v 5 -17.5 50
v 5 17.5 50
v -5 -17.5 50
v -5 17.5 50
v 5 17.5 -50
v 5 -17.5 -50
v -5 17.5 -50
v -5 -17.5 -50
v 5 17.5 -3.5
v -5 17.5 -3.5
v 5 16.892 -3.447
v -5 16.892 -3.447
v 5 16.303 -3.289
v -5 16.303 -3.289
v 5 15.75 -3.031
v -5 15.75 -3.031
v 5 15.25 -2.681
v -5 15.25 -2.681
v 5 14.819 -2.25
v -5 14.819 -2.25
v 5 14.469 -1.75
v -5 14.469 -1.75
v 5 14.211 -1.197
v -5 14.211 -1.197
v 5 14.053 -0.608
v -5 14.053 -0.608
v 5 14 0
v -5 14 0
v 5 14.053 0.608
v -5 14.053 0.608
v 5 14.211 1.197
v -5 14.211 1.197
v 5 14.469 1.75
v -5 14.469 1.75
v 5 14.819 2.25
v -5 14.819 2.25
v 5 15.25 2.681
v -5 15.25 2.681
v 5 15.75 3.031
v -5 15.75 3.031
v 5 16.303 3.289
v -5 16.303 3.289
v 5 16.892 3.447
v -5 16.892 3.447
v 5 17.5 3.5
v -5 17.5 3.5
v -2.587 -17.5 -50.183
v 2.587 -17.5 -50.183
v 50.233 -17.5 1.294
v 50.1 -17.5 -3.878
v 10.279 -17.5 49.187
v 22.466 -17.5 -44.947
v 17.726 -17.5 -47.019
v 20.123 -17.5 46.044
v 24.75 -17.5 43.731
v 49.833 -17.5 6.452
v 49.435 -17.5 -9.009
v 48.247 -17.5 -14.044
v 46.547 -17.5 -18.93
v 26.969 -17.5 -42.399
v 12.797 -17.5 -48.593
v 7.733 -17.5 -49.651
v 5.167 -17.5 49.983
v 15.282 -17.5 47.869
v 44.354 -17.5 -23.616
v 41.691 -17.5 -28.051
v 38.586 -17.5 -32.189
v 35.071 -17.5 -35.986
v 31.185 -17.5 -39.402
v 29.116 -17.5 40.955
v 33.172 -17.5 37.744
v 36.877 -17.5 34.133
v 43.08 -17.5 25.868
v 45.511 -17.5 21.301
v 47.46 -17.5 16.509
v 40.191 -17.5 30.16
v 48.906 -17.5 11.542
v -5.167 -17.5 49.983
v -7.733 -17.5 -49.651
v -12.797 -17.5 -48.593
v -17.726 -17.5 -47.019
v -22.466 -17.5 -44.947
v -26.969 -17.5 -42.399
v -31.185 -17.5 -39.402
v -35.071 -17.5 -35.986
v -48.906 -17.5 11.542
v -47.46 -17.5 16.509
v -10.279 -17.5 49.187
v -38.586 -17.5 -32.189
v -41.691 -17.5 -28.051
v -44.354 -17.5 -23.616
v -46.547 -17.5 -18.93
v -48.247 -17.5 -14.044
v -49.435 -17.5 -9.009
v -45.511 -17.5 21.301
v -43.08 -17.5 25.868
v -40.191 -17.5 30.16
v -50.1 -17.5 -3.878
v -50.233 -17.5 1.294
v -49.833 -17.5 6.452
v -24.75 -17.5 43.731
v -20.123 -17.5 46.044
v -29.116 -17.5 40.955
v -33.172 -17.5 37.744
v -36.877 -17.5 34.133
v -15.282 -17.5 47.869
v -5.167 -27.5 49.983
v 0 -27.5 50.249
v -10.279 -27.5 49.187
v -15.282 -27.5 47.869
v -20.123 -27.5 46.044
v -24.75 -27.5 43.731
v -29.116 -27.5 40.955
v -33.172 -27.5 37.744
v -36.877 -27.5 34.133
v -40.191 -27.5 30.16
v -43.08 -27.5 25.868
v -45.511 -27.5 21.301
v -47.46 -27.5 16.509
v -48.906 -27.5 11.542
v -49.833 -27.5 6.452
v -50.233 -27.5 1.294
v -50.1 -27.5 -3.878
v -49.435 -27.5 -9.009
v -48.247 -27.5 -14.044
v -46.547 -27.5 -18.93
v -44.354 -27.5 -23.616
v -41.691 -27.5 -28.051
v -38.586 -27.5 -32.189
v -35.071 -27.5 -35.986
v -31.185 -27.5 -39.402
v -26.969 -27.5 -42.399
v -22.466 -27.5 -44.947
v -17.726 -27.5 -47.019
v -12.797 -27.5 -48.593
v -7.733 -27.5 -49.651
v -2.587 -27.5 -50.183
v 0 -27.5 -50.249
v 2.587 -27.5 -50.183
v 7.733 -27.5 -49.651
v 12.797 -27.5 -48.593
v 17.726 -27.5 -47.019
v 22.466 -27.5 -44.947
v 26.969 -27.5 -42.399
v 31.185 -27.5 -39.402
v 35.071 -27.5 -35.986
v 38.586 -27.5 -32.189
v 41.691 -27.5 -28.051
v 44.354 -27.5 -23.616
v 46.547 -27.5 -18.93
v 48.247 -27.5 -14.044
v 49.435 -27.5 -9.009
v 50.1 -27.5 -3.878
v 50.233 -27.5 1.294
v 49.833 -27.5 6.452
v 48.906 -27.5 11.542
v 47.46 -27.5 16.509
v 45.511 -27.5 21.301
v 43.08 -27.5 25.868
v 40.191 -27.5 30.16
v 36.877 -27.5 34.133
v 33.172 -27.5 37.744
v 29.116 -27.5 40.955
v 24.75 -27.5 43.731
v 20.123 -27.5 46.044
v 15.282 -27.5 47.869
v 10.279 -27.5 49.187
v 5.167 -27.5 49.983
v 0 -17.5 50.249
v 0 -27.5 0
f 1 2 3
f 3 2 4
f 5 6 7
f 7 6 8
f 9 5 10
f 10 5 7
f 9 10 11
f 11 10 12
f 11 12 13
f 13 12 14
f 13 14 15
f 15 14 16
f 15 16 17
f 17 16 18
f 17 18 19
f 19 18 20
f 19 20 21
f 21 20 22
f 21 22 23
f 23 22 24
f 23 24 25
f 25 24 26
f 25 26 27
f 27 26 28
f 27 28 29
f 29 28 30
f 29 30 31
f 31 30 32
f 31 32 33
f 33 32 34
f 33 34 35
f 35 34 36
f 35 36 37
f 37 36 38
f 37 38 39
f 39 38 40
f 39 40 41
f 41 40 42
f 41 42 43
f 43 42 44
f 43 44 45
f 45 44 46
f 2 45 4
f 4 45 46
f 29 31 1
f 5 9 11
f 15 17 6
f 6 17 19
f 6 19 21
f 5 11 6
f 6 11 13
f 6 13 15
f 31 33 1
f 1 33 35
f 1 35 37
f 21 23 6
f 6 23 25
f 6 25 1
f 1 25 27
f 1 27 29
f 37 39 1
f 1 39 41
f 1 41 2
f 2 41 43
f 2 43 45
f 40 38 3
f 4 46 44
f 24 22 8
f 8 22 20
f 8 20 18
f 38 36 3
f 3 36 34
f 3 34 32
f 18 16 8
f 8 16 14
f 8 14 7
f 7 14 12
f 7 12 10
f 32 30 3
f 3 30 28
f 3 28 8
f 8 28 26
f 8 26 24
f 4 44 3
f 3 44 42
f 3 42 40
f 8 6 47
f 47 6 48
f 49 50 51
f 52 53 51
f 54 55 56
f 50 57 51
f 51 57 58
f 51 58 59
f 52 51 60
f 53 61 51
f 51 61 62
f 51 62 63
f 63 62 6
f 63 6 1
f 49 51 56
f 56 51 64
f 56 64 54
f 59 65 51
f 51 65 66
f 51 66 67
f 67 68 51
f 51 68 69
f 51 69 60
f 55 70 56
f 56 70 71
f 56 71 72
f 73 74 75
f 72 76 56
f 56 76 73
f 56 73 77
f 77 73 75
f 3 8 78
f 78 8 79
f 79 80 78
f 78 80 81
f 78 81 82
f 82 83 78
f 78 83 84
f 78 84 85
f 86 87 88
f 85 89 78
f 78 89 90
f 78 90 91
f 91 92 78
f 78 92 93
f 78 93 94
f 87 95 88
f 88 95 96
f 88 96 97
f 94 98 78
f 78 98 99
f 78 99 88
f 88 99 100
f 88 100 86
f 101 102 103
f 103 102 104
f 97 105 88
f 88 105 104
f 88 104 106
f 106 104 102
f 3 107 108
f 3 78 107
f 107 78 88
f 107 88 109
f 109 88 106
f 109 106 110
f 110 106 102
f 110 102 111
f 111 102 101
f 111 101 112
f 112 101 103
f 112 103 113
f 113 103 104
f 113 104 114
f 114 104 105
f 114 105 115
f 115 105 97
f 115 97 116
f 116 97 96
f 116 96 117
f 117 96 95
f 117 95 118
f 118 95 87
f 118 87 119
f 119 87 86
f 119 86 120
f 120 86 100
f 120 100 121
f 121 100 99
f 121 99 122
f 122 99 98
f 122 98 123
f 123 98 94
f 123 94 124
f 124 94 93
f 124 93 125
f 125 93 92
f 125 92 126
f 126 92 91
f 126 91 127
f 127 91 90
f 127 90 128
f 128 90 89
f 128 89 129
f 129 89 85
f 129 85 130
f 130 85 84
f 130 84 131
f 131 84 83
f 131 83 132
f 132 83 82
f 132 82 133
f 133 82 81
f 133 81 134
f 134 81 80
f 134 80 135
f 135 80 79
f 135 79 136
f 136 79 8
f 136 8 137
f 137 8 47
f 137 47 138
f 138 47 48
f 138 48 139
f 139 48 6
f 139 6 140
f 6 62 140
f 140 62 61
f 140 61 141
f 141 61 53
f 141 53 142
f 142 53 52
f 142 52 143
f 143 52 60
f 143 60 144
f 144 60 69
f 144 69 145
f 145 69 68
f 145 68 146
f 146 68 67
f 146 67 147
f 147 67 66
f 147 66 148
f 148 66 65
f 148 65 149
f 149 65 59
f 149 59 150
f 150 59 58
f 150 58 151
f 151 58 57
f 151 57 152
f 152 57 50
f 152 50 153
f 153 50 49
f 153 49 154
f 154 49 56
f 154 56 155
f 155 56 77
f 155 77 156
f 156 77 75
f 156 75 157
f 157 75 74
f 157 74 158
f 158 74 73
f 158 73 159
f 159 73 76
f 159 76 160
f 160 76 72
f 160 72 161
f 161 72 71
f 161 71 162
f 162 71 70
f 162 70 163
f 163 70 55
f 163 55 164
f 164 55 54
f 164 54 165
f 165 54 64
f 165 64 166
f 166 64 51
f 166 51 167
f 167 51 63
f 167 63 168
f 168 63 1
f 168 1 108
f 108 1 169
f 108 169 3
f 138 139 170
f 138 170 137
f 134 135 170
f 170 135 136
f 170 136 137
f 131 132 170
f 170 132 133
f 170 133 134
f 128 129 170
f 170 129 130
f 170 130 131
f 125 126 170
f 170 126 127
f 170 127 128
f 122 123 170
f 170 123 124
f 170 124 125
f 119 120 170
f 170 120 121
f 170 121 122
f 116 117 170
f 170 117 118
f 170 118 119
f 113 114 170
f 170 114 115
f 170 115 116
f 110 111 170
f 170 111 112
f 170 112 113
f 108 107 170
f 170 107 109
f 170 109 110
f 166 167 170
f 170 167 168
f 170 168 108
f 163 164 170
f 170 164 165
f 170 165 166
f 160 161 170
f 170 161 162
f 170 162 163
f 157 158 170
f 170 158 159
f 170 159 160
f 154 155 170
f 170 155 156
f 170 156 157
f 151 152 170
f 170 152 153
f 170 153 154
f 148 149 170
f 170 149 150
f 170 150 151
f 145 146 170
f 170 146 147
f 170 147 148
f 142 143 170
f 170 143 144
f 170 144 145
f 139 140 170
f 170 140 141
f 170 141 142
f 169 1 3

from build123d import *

# Parameters (mm, degrees)
BOSS_EXTRUDE1_DEPTH = 5
SKETCH2_R           = 50.249378106
BOSS_EXTRUDE2_DEPTH = 10


with BuildPart() as part:
    # Sketch1 → Boss-Extrude1 (new, symmetric)
    with BuildSketch(Plane(origin=(0, 0, 0), x_dir=(0, 0, -1), z_dir=(1, 0, 0))):
        with BuildLine():
            Line((-3.5, 17.5), (-50, 17.5))
            Line((-50, 17.5), (-50, -17.5))
            Line((-50, -17.5), (50, -17.5))
            Line((50, -17.5), (50, 17.5))
            Line((50, 17.5), (3.5, 17.5))
            ThreePointArc((3.5, 17.5), (0, 14), (-3.5, 17.5))
        make_face()
    extrude(amount=BOSS_EXTRUDE1_DEPTH, both=True)

    # Sketch2 → Boss-Extrude2 (add)
    with BuildSketch(Plane.XZ.offset(17.5)):
        with Locations(Location((0, 0, 0), (0, 0, 95.710593137))):
            Circle(SKETCH2_R)
    extrude(amount=BOSS_EXTRUDE2_DEPTH)


solid = part.part
